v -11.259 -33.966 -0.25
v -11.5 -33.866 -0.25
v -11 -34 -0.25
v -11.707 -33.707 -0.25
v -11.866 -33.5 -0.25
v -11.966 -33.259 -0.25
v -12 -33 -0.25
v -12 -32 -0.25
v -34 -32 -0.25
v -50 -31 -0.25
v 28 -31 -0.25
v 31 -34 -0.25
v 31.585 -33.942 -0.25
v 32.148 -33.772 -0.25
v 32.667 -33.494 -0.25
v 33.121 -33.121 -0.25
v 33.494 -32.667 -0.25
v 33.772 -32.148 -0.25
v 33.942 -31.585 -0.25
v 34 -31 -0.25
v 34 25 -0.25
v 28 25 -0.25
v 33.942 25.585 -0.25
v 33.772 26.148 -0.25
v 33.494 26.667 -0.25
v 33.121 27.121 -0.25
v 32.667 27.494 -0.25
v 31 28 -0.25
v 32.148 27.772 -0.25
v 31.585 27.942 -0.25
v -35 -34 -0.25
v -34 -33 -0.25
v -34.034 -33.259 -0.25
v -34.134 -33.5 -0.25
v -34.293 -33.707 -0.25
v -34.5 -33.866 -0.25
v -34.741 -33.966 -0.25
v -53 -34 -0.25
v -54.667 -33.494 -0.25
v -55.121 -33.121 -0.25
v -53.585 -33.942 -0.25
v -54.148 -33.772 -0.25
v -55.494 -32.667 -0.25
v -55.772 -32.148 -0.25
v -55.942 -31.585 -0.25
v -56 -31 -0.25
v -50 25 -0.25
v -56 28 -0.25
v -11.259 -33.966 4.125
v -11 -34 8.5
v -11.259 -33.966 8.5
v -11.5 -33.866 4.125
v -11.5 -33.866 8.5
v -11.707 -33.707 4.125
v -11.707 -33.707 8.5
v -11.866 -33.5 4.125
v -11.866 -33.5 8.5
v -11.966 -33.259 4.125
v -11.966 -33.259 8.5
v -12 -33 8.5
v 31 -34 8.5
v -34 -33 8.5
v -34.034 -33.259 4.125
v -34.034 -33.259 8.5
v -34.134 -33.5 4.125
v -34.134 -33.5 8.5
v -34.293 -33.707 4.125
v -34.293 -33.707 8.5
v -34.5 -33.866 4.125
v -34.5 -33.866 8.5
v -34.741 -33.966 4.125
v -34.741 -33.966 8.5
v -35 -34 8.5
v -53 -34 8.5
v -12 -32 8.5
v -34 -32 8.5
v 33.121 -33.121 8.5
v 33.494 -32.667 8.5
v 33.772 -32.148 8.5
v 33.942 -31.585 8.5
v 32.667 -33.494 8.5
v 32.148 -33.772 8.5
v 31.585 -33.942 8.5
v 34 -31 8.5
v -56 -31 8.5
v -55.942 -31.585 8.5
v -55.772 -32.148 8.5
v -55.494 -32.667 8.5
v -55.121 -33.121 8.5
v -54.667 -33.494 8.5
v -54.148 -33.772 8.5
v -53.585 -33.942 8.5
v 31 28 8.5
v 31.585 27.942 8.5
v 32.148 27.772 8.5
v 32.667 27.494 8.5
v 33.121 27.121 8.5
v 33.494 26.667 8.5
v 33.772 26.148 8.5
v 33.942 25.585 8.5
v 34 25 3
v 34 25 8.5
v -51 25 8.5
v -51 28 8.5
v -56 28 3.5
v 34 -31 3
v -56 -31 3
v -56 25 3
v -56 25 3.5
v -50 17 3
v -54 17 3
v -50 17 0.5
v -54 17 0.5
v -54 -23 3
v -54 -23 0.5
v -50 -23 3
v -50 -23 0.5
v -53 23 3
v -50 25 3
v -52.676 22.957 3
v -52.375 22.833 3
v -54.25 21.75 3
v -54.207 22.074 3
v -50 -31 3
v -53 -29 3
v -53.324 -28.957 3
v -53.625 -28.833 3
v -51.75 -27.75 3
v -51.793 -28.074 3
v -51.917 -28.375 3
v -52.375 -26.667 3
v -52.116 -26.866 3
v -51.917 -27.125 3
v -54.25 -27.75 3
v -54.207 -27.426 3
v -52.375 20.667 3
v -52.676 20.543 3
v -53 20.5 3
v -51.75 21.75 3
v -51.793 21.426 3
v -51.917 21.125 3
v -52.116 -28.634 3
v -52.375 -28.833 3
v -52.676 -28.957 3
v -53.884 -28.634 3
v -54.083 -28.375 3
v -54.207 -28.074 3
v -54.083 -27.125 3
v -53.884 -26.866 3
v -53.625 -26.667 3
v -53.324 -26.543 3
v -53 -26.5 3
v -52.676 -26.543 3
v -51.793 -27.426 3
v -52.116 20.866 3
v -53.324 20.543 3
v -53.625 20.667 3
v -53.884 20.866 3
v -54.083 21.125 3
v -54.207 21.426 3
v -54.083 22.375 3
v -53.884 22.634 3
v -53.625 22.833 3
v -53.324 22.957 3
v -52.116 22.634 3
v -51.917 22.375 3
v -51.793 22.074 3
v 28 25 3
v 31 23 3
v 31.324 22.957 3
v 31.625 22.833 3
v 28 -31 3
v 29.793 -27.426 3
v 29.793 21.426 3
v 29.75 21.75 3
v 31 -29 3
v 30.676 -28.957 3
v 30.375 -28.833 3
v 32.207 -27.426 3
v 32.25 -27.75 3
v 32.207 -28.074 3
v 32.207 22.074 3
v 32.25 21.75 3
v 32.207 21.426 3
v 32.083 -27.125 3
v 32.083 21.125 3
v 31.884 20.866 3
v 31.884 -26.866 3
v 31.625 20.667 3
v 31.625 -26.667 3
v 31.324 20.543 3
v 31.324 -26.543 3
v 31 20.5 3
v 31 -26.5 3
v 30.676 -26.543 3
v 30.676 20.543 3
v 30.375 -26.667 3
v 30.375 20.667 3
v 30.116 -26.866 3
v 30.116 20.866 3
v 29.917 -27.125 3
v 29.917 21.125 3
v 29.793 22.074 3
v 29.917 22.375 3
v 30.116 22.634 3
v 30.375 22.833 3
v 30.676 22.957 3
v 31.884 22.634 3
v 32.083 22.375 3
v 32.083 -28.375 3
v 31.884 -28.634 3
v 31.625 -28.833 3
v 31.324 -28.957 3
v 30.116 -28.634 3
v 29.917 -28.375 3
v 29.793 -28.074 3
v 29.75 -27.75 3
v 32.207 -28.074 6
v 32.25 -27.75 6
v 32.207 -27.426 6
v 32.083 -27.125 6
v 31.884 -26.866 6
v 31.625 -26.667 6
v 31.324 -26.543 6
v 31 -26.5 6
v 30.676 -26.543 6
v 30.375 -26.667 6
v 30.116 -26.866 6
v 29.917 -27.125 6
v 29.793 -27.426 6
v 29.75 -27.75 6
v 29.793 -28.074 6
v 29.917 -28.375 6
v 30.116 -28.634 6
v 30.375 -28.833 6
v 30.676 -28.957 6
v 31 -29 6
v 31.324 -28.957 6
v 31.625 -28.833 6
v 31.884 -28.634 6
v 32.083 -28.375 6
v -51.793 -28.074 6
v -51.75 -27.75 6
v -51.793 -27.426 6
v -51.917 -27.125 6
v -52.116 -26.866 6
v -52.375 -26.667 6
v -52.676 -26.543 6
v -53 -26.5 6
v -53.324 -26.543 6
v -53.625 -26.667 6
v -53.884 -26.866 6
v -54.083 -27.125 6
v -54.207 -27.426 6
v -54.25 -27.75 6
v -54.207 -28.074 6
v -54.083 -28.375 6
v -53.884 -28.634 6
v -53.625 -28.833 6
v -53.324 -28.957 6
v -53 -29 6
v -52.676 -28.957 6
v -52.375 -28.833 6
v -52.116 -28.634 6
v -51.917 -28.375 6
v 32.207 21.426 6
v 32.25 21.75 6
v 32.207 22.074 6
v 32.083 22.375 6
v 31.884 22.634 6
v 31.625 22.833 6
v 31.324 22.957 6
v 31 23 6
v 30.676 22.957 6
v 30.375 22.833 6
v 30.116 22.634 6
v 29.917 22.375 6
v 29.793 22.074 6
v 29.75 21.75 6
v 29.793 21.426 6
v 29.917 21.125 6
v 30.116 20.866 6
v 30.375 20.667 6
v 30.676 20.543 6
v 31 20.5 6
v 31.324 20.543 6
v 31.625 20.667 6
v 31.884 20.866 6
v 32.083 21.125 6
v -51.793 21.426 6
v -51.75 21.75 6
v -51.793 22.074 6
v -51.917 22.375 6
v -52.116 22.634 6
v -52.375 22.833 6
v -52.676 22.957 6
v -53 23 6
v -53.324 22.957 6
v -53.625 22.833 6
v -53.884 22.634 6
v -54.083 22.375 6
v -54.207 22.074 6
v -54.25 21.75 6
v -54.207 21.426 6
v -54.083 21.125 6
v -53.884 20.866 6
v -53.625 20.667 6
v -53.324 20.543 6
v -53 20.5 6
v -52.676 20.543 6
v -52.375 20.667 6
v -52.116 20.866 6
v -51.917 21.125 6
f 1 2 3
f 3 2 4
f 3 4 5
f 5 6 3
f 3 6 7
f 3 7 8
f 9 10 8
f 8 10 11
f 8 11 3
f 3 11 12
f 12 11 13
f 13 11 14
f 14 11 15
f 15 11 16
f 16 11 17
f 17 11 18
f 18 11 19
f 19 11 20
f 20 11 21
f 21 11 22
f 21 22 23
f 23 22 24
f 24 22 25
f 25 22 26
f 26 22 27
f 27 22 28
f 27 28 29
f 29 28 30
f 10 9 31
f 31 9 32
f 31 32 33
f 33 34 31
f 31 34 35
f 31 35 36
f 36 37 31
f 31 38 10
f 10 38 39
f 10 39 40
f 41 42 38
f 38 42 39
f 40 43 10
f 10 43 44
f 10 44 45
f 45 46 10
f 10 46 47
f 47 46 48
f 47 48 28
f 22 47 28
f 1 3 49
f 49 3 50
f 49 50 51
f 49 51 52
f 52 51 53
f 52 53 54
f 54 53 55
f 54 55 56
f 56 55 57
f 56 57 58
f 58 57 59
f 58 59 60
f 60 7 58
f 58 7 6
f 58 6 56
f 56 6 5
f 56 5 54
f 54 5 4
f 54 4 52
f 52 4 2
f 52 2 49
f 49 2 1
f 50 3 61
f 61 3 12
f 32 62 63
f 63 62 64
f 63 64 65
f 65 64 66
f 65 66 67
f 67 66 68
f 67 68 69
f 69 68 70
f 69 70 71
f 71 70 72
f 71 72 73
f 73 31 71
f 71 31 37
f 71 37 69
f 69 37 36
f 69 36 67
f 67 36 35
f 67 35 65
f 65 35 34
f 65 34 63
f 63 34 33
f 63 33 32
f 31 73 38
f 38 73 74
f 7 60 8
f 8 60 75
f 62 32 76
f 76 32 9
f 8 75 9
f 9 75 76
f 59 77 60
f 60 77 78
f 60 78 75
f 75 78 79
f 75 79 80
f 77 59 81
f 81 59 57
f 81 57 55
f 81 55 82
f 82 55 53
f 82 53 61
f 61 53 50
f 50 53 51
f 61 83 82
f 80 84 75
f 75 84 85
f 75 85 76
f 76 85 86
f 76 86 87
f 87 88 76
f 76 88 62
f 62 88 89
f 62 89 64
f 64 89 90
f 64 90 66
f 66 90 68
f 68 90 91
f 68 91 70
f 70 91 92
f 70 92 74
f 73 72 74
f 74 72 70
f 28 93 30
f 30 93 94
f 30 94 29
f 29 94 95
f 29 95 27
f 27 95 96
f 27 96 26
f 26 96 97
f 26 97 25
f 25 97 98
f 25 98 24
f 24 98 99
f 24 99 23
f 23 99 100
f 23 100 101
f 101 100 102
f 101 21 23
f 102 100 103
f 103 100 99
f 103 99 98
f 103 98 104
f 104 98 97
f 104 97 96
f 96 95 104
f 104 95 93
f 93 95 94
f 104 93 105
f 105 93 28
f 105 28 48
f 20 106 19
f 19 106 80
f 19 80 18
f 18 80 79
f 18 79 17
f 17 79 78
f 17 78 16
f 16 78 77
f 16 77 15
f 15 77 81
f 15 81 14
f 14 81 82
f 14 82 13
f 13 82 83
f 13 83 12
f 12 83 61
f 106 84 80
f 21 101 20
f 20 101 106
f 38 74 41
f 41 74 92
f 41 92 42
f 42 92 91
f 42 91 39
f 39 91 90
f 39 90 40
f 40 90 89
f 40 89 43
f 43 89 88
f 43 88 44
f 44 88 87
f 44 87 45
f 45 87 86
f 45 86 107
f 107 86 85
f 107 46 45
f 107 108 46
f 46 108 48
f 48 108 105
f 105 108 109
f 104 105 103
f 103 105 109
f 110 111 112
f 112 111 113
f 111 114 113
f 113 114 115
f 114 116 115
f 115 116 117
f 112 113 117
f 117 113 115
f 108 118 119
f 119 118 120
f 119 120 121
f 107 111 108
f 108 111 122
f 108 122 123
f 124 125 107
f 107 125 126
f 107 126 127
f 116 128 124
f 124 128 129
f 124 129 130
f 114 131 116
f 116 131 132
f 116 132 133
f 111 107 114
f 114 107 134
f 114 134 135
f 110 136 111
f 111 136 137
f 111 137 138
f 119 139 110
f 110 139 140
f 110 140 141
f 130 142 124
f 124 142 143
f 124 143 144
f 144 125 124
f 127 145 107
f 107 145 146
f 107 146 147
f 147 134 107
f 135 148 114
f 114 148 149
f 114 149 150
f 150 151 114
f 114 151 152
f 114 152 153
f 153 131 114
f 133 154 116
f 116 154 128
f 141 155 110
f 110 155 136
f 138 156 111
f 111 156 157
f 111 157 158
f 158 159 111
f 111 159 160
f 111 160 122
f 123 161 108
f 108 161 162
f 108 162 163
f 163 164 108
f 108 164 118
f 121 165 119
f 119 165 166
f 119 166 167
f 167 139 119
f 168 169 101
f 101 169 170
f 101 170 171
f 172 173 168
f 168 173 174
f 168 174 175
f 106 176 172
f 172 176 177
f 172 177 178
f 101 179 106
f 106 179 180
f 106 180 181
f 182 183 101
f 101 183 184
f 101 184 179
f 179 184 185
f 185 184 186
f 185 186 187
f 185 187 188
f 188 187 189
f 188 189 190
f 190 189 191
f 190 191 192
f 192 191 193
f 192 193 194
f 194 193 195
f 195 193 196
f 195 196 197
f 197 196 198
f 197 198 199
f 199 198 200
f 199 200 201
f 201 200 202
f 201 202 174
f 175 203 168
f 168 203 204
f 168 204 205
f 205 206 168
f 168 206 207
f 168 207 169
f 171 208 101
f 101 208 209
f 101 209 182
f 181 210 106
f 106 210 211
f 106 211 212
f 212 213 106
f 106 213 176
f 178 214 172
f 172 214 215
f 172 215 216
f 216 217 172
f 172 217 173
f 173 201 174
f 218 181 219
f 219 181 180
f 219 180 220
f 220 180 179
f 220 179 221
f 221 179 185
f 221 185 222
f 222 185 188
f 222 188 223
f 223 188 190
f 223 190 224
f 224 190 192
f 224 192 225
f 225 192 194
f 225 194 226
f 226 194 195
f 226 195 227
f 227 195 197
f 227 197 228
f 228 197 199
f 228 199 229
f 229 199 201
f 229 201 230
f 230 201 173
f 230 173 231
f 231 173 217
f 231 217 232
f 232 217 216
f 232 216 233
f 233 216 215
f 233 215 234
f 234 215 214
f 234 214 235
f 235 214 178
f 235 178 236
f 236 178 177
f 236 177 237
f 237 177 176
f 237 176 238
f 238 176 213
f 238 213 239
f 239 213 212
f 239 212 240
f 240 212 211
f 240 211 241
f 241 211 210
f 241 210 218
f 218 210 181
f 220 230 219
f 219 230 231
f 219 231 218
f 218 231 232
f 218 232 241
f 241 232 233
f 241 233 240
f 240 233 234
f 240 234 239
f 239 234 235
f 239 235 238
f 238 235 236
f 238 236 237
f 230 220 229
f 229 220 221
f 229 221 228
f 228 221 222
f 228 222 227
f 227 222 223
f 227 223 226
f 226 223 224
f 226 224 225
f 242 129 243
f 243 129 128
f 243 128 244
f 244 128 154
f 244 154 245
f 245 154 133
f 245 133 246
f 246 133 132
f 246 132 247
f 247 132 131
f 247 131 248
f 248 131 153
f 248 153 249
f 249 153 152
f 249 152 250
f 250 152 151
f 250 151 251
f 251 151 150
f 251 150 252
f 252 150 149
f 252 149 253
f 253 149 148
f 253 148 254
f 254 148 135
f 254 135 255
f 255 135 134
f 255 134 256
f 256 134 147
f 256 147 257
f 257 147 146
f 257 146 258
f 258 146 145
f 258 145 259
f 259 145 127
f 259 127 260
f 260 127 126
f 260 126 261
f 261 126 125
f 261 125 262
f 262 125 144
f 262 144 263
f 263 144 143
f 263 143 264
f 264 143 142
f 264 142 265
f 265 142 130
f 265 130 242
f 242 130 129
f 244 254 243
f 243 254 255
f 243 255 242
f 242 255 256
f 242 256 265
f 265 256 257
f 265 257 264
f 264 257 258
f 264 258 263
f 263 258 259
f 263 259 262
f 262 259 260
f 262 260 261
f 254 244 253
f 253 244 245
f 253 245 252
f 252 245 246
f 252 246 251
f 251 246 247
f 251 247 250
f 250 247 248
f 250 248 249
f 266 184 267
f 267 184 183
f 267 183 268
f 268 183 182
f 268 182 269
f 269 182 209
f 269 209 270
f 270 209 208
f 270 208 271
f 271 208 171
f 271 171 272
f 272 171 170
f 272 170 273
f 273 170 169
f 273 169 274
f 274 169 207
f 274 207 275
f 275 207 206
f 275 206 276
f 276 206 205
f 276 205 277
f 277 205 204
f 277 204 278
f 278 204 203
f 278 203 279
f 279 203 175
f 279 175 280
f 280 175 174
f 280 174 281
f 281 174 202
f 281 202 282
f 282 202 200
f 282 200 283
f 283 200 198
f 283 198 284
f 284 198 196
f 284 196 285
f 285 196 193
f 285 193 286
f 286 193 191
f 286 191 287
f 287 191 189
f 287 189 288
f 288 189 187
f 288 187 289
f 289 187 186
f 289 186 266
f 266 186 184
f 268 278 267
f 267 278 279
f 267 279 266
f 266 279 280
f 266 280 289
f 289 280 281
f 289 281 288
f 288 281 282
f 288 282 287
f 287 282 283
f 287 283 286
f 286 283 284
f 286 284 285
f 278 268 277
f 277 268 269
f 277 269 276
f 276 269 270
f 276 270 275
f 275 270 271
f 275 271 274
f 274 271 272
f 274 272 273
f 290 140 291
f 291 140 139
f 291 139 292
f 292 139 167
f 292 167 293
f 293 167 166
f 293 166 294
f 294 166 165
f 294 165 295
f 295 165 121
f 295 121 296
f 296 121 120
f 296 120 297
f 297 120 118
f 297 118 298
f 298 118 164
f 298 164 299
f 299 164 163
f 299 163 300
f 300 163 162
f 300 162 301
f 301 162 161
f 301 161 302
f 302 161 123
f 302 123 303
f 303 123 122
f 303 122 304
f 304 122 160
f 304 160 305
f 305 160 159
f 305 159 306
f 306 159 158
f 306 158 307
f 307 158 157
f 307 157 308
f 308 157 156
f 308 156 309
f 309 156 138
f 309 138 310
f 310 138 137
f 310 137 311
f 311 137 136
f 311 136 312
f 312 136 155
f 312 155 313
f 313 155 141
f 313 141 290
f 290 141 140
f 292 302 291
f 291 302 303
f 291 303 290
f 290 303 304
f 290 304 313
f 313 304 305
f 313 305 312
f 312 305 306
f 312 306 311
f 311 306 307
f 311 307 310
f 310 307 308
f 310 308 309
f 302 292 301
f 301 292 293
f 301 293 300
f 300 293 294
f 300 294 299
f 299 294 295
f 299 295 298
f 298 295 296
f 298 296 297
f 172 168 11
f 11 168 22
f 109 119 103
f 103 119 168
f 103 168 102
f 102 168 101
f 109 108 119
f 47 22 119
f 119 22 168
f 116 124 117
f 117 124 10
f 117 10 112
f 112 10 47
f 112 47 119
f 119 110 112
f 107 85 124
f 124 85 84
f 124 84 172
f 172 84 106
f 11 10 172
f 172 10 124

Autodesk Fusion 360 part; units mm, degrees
sketch "Sketch1" plane through (0, 0, 0) normal (0, 0, 1) x (1, 0, 0)
  line L0 (-50, 25) -> (28, 25)
  line L1 (28, 25) -> (28, -31)
  line L2 (28, -31) -> (-50, -31)
  line L3 (-50, -31) -> (-50, 25)
  line L4 (-55, 30) -> (30, 30)
  line L5 (30, 30) -> (30, -35)
  line L6 (30, -35) -> (-55, -35)
  line L7 (-55, -35) -> (-55, 30)
  dimension "d1" = 78
  dimension "d2" = 56
extrude "Extrude1" add sketch "Sketch1" along normal blind 3
sketch "Sketch2" plane through (0, 0, 3) normal (0, 0, 1) x (-1, 0, 0)
  line L0 (-28, 31) -> (50, 31)
  line L1 (50, 31) -> (50, -25)
  line L2 (50, -25) -> (-28, -25)
  line L3 (-28, -25) -> (-28, 31)
  line L4 (55, 35) -> (-30, 35)
  line L5 (-30, 35) -> (-30, -30)
  line L6 (-30, -30) -> (55, -30)
  line L7 (55, -30) -> (55, 35)
  line L8 (50, -25) -> (-28, -25)
  line L9 (-28, -25) -> (-28, -30)
  line L10 (-28, -30) -> (50, -30)
  line L11 (50, -30) -> (50, -25)
  line L12 (-28, 31) -> (50, 31)
  line L13 (50, 31) -> (50, 35)
  line L14 (50, 35) -> (-28, 35)
  line L15 (-28, 35) -> (-28, 31)
extrude "Extrude2" add sketch "Sketch2" along normal blind 5 contours L0 L4 L12 L13 L14 L15 | L2 L6 L8 L9 L10 L11
extrude "Extrude3" add 1 faces at (30, 8.3333, 1) along direction (1, 0, 0) blind 4
extrude "Extrude4" add 1 faces at (-55, -13.3333, 1) along direction (-1, 0, 0) blind 1
sketch "Sketch3" plane through (0, 0, 3) normal (0, 0, 1) x (-1, 0, 0)
  line L0 (50, 35) -> (50, 31)
  line L1 (50, 31) -> (50, -25)
  line L2 (50, -25) -> (50, -30)
  line L3 (50, -30) -> (56, -30)
  line L4 (56, -30) -> (56, 35)
  line L5 (56, 35) -> (50, 35)
  circle A0 centre (53, -21.75) radius 1.25
  circle A1 centre (-31, -21.75) radius 1.25
  circle A2 centre (-31, 27.75) radius 1.25
  circle A3 centre (53, 27.75) radius 1.25
  dimension "d11" = 2.5
  dimension "d12" = 2.5
  dimension "d13" = 2.5
  dimension "d14" = 2.5
extrude "Extrude5" add sketch "Sketch3" along normal blind 3 contours A0 | A1 | A2 | A3
extrude "Extrude6" add 2 faces at (2, 28.3333, 8) (2, -32.3333, 8) along direction (0, 0, 1) blind 1
extrude "Extrude7" cut 1 faces at (-24, 30, 7) along direction (0, -1, 0) blind 2
extrude "Extrude8" cut 1 faces at (-24, -35, 5) along direction (0, 1, 0) blind 1
sketch "Sketch4" plane through (0, 0, 3) normal (0, 0, 1) x (-1, 0, 0)
  line L0 (56, 34) -> (50, 34)
  line L1 (50, 34) -> (50, 31)
  line L2 (50, 31) -> (50, -25)
  line L3 (50, -25) -> (50, -28)
  line L4 (50, -28) -> (56, -28)
  line L5 (56, -28) -> (56, 34)
  circle A0 centre (53, -21.75) radius 1.25
  circle A1 centre (53, 27.75) radius 1.25
  line L6 (50, -17) -> (54, -17)
  line L7 (54, -17) -> (54, 23)
  line L8 (54, 23) -> (50, 23)
  line L9 (50, 23) -> (50, -17)
extrude "Extrude9" cut sketch "Sketch4" against normal blind 2.5 contours L2 L6 L7 L8 L9
extrude "Extrude10" add 2 faces at (-50, -32, 5) (-50, 26, 5) along direction (-1, 0, 0) up to surface end surface through (-56, -35, 0) normal (-1, 0, 0) offset 0
extrude "Extrude11" add 2 faces at (28, -32, 7) (28, 26, 5) along direction (1, 0, 0) up to surface end surface through (34, 30, 0) normal (1, 0, 0) offset 0
extrude "Extrude12" cut 2 faces at (4, 26, 9) (4, -33, 9) along direction (0, 0, -1) blind 0.5
chamfer "Chamfer1" distance 5 angle 45 1 edges at (-56, 26.5, 8.5)
fillet "Fillet4" radius 3 3 edges at (-56, -34, 4.25) (34, -34, 4.25) (34, 28, 4.25)
sketch "Sketch5" plane through (0, -34, 0) normal (0, -1, 0) x (1, 0, 0)
  line L0 (31, 0) -> (31, 8.5)
  line L1 (31, 8.5) -> (-53, 8.5)
  line L2 (-53, 8.5) -> (-53, 0)
  line L3 (-53, 0) -> (31, 0)
  line L4 (-56, 0) -> (-34, 0)
  line L5 (-34, 0) -> (-34, 10.214)
  line L6 (-34, 10.214) -> (-12, 10.214)
  line L7 (-12, 10.214) -> (-12, -0.4704)
  line L8 (-12, -0.4704) -> (-34, -0.4704)
  line L9 (-34, -0.4704) -> (-34, 0)
  point P0 (-56, 0)
  dimension "d40" = 90
  dimension "d41" = 22
extrude "Extrude13" cut sketch "Sketch5" against normal blind 2 contours L1 L3 L5 L7
fillet "Fillet5" radius 1 2 edges at (-34, -34, 4.25) (-12, -34, 4.25)
extrude "Extrude14" add 1 faces at (-54, 7.3331, 0) along direction (0, 0, -1) blind 0.25
